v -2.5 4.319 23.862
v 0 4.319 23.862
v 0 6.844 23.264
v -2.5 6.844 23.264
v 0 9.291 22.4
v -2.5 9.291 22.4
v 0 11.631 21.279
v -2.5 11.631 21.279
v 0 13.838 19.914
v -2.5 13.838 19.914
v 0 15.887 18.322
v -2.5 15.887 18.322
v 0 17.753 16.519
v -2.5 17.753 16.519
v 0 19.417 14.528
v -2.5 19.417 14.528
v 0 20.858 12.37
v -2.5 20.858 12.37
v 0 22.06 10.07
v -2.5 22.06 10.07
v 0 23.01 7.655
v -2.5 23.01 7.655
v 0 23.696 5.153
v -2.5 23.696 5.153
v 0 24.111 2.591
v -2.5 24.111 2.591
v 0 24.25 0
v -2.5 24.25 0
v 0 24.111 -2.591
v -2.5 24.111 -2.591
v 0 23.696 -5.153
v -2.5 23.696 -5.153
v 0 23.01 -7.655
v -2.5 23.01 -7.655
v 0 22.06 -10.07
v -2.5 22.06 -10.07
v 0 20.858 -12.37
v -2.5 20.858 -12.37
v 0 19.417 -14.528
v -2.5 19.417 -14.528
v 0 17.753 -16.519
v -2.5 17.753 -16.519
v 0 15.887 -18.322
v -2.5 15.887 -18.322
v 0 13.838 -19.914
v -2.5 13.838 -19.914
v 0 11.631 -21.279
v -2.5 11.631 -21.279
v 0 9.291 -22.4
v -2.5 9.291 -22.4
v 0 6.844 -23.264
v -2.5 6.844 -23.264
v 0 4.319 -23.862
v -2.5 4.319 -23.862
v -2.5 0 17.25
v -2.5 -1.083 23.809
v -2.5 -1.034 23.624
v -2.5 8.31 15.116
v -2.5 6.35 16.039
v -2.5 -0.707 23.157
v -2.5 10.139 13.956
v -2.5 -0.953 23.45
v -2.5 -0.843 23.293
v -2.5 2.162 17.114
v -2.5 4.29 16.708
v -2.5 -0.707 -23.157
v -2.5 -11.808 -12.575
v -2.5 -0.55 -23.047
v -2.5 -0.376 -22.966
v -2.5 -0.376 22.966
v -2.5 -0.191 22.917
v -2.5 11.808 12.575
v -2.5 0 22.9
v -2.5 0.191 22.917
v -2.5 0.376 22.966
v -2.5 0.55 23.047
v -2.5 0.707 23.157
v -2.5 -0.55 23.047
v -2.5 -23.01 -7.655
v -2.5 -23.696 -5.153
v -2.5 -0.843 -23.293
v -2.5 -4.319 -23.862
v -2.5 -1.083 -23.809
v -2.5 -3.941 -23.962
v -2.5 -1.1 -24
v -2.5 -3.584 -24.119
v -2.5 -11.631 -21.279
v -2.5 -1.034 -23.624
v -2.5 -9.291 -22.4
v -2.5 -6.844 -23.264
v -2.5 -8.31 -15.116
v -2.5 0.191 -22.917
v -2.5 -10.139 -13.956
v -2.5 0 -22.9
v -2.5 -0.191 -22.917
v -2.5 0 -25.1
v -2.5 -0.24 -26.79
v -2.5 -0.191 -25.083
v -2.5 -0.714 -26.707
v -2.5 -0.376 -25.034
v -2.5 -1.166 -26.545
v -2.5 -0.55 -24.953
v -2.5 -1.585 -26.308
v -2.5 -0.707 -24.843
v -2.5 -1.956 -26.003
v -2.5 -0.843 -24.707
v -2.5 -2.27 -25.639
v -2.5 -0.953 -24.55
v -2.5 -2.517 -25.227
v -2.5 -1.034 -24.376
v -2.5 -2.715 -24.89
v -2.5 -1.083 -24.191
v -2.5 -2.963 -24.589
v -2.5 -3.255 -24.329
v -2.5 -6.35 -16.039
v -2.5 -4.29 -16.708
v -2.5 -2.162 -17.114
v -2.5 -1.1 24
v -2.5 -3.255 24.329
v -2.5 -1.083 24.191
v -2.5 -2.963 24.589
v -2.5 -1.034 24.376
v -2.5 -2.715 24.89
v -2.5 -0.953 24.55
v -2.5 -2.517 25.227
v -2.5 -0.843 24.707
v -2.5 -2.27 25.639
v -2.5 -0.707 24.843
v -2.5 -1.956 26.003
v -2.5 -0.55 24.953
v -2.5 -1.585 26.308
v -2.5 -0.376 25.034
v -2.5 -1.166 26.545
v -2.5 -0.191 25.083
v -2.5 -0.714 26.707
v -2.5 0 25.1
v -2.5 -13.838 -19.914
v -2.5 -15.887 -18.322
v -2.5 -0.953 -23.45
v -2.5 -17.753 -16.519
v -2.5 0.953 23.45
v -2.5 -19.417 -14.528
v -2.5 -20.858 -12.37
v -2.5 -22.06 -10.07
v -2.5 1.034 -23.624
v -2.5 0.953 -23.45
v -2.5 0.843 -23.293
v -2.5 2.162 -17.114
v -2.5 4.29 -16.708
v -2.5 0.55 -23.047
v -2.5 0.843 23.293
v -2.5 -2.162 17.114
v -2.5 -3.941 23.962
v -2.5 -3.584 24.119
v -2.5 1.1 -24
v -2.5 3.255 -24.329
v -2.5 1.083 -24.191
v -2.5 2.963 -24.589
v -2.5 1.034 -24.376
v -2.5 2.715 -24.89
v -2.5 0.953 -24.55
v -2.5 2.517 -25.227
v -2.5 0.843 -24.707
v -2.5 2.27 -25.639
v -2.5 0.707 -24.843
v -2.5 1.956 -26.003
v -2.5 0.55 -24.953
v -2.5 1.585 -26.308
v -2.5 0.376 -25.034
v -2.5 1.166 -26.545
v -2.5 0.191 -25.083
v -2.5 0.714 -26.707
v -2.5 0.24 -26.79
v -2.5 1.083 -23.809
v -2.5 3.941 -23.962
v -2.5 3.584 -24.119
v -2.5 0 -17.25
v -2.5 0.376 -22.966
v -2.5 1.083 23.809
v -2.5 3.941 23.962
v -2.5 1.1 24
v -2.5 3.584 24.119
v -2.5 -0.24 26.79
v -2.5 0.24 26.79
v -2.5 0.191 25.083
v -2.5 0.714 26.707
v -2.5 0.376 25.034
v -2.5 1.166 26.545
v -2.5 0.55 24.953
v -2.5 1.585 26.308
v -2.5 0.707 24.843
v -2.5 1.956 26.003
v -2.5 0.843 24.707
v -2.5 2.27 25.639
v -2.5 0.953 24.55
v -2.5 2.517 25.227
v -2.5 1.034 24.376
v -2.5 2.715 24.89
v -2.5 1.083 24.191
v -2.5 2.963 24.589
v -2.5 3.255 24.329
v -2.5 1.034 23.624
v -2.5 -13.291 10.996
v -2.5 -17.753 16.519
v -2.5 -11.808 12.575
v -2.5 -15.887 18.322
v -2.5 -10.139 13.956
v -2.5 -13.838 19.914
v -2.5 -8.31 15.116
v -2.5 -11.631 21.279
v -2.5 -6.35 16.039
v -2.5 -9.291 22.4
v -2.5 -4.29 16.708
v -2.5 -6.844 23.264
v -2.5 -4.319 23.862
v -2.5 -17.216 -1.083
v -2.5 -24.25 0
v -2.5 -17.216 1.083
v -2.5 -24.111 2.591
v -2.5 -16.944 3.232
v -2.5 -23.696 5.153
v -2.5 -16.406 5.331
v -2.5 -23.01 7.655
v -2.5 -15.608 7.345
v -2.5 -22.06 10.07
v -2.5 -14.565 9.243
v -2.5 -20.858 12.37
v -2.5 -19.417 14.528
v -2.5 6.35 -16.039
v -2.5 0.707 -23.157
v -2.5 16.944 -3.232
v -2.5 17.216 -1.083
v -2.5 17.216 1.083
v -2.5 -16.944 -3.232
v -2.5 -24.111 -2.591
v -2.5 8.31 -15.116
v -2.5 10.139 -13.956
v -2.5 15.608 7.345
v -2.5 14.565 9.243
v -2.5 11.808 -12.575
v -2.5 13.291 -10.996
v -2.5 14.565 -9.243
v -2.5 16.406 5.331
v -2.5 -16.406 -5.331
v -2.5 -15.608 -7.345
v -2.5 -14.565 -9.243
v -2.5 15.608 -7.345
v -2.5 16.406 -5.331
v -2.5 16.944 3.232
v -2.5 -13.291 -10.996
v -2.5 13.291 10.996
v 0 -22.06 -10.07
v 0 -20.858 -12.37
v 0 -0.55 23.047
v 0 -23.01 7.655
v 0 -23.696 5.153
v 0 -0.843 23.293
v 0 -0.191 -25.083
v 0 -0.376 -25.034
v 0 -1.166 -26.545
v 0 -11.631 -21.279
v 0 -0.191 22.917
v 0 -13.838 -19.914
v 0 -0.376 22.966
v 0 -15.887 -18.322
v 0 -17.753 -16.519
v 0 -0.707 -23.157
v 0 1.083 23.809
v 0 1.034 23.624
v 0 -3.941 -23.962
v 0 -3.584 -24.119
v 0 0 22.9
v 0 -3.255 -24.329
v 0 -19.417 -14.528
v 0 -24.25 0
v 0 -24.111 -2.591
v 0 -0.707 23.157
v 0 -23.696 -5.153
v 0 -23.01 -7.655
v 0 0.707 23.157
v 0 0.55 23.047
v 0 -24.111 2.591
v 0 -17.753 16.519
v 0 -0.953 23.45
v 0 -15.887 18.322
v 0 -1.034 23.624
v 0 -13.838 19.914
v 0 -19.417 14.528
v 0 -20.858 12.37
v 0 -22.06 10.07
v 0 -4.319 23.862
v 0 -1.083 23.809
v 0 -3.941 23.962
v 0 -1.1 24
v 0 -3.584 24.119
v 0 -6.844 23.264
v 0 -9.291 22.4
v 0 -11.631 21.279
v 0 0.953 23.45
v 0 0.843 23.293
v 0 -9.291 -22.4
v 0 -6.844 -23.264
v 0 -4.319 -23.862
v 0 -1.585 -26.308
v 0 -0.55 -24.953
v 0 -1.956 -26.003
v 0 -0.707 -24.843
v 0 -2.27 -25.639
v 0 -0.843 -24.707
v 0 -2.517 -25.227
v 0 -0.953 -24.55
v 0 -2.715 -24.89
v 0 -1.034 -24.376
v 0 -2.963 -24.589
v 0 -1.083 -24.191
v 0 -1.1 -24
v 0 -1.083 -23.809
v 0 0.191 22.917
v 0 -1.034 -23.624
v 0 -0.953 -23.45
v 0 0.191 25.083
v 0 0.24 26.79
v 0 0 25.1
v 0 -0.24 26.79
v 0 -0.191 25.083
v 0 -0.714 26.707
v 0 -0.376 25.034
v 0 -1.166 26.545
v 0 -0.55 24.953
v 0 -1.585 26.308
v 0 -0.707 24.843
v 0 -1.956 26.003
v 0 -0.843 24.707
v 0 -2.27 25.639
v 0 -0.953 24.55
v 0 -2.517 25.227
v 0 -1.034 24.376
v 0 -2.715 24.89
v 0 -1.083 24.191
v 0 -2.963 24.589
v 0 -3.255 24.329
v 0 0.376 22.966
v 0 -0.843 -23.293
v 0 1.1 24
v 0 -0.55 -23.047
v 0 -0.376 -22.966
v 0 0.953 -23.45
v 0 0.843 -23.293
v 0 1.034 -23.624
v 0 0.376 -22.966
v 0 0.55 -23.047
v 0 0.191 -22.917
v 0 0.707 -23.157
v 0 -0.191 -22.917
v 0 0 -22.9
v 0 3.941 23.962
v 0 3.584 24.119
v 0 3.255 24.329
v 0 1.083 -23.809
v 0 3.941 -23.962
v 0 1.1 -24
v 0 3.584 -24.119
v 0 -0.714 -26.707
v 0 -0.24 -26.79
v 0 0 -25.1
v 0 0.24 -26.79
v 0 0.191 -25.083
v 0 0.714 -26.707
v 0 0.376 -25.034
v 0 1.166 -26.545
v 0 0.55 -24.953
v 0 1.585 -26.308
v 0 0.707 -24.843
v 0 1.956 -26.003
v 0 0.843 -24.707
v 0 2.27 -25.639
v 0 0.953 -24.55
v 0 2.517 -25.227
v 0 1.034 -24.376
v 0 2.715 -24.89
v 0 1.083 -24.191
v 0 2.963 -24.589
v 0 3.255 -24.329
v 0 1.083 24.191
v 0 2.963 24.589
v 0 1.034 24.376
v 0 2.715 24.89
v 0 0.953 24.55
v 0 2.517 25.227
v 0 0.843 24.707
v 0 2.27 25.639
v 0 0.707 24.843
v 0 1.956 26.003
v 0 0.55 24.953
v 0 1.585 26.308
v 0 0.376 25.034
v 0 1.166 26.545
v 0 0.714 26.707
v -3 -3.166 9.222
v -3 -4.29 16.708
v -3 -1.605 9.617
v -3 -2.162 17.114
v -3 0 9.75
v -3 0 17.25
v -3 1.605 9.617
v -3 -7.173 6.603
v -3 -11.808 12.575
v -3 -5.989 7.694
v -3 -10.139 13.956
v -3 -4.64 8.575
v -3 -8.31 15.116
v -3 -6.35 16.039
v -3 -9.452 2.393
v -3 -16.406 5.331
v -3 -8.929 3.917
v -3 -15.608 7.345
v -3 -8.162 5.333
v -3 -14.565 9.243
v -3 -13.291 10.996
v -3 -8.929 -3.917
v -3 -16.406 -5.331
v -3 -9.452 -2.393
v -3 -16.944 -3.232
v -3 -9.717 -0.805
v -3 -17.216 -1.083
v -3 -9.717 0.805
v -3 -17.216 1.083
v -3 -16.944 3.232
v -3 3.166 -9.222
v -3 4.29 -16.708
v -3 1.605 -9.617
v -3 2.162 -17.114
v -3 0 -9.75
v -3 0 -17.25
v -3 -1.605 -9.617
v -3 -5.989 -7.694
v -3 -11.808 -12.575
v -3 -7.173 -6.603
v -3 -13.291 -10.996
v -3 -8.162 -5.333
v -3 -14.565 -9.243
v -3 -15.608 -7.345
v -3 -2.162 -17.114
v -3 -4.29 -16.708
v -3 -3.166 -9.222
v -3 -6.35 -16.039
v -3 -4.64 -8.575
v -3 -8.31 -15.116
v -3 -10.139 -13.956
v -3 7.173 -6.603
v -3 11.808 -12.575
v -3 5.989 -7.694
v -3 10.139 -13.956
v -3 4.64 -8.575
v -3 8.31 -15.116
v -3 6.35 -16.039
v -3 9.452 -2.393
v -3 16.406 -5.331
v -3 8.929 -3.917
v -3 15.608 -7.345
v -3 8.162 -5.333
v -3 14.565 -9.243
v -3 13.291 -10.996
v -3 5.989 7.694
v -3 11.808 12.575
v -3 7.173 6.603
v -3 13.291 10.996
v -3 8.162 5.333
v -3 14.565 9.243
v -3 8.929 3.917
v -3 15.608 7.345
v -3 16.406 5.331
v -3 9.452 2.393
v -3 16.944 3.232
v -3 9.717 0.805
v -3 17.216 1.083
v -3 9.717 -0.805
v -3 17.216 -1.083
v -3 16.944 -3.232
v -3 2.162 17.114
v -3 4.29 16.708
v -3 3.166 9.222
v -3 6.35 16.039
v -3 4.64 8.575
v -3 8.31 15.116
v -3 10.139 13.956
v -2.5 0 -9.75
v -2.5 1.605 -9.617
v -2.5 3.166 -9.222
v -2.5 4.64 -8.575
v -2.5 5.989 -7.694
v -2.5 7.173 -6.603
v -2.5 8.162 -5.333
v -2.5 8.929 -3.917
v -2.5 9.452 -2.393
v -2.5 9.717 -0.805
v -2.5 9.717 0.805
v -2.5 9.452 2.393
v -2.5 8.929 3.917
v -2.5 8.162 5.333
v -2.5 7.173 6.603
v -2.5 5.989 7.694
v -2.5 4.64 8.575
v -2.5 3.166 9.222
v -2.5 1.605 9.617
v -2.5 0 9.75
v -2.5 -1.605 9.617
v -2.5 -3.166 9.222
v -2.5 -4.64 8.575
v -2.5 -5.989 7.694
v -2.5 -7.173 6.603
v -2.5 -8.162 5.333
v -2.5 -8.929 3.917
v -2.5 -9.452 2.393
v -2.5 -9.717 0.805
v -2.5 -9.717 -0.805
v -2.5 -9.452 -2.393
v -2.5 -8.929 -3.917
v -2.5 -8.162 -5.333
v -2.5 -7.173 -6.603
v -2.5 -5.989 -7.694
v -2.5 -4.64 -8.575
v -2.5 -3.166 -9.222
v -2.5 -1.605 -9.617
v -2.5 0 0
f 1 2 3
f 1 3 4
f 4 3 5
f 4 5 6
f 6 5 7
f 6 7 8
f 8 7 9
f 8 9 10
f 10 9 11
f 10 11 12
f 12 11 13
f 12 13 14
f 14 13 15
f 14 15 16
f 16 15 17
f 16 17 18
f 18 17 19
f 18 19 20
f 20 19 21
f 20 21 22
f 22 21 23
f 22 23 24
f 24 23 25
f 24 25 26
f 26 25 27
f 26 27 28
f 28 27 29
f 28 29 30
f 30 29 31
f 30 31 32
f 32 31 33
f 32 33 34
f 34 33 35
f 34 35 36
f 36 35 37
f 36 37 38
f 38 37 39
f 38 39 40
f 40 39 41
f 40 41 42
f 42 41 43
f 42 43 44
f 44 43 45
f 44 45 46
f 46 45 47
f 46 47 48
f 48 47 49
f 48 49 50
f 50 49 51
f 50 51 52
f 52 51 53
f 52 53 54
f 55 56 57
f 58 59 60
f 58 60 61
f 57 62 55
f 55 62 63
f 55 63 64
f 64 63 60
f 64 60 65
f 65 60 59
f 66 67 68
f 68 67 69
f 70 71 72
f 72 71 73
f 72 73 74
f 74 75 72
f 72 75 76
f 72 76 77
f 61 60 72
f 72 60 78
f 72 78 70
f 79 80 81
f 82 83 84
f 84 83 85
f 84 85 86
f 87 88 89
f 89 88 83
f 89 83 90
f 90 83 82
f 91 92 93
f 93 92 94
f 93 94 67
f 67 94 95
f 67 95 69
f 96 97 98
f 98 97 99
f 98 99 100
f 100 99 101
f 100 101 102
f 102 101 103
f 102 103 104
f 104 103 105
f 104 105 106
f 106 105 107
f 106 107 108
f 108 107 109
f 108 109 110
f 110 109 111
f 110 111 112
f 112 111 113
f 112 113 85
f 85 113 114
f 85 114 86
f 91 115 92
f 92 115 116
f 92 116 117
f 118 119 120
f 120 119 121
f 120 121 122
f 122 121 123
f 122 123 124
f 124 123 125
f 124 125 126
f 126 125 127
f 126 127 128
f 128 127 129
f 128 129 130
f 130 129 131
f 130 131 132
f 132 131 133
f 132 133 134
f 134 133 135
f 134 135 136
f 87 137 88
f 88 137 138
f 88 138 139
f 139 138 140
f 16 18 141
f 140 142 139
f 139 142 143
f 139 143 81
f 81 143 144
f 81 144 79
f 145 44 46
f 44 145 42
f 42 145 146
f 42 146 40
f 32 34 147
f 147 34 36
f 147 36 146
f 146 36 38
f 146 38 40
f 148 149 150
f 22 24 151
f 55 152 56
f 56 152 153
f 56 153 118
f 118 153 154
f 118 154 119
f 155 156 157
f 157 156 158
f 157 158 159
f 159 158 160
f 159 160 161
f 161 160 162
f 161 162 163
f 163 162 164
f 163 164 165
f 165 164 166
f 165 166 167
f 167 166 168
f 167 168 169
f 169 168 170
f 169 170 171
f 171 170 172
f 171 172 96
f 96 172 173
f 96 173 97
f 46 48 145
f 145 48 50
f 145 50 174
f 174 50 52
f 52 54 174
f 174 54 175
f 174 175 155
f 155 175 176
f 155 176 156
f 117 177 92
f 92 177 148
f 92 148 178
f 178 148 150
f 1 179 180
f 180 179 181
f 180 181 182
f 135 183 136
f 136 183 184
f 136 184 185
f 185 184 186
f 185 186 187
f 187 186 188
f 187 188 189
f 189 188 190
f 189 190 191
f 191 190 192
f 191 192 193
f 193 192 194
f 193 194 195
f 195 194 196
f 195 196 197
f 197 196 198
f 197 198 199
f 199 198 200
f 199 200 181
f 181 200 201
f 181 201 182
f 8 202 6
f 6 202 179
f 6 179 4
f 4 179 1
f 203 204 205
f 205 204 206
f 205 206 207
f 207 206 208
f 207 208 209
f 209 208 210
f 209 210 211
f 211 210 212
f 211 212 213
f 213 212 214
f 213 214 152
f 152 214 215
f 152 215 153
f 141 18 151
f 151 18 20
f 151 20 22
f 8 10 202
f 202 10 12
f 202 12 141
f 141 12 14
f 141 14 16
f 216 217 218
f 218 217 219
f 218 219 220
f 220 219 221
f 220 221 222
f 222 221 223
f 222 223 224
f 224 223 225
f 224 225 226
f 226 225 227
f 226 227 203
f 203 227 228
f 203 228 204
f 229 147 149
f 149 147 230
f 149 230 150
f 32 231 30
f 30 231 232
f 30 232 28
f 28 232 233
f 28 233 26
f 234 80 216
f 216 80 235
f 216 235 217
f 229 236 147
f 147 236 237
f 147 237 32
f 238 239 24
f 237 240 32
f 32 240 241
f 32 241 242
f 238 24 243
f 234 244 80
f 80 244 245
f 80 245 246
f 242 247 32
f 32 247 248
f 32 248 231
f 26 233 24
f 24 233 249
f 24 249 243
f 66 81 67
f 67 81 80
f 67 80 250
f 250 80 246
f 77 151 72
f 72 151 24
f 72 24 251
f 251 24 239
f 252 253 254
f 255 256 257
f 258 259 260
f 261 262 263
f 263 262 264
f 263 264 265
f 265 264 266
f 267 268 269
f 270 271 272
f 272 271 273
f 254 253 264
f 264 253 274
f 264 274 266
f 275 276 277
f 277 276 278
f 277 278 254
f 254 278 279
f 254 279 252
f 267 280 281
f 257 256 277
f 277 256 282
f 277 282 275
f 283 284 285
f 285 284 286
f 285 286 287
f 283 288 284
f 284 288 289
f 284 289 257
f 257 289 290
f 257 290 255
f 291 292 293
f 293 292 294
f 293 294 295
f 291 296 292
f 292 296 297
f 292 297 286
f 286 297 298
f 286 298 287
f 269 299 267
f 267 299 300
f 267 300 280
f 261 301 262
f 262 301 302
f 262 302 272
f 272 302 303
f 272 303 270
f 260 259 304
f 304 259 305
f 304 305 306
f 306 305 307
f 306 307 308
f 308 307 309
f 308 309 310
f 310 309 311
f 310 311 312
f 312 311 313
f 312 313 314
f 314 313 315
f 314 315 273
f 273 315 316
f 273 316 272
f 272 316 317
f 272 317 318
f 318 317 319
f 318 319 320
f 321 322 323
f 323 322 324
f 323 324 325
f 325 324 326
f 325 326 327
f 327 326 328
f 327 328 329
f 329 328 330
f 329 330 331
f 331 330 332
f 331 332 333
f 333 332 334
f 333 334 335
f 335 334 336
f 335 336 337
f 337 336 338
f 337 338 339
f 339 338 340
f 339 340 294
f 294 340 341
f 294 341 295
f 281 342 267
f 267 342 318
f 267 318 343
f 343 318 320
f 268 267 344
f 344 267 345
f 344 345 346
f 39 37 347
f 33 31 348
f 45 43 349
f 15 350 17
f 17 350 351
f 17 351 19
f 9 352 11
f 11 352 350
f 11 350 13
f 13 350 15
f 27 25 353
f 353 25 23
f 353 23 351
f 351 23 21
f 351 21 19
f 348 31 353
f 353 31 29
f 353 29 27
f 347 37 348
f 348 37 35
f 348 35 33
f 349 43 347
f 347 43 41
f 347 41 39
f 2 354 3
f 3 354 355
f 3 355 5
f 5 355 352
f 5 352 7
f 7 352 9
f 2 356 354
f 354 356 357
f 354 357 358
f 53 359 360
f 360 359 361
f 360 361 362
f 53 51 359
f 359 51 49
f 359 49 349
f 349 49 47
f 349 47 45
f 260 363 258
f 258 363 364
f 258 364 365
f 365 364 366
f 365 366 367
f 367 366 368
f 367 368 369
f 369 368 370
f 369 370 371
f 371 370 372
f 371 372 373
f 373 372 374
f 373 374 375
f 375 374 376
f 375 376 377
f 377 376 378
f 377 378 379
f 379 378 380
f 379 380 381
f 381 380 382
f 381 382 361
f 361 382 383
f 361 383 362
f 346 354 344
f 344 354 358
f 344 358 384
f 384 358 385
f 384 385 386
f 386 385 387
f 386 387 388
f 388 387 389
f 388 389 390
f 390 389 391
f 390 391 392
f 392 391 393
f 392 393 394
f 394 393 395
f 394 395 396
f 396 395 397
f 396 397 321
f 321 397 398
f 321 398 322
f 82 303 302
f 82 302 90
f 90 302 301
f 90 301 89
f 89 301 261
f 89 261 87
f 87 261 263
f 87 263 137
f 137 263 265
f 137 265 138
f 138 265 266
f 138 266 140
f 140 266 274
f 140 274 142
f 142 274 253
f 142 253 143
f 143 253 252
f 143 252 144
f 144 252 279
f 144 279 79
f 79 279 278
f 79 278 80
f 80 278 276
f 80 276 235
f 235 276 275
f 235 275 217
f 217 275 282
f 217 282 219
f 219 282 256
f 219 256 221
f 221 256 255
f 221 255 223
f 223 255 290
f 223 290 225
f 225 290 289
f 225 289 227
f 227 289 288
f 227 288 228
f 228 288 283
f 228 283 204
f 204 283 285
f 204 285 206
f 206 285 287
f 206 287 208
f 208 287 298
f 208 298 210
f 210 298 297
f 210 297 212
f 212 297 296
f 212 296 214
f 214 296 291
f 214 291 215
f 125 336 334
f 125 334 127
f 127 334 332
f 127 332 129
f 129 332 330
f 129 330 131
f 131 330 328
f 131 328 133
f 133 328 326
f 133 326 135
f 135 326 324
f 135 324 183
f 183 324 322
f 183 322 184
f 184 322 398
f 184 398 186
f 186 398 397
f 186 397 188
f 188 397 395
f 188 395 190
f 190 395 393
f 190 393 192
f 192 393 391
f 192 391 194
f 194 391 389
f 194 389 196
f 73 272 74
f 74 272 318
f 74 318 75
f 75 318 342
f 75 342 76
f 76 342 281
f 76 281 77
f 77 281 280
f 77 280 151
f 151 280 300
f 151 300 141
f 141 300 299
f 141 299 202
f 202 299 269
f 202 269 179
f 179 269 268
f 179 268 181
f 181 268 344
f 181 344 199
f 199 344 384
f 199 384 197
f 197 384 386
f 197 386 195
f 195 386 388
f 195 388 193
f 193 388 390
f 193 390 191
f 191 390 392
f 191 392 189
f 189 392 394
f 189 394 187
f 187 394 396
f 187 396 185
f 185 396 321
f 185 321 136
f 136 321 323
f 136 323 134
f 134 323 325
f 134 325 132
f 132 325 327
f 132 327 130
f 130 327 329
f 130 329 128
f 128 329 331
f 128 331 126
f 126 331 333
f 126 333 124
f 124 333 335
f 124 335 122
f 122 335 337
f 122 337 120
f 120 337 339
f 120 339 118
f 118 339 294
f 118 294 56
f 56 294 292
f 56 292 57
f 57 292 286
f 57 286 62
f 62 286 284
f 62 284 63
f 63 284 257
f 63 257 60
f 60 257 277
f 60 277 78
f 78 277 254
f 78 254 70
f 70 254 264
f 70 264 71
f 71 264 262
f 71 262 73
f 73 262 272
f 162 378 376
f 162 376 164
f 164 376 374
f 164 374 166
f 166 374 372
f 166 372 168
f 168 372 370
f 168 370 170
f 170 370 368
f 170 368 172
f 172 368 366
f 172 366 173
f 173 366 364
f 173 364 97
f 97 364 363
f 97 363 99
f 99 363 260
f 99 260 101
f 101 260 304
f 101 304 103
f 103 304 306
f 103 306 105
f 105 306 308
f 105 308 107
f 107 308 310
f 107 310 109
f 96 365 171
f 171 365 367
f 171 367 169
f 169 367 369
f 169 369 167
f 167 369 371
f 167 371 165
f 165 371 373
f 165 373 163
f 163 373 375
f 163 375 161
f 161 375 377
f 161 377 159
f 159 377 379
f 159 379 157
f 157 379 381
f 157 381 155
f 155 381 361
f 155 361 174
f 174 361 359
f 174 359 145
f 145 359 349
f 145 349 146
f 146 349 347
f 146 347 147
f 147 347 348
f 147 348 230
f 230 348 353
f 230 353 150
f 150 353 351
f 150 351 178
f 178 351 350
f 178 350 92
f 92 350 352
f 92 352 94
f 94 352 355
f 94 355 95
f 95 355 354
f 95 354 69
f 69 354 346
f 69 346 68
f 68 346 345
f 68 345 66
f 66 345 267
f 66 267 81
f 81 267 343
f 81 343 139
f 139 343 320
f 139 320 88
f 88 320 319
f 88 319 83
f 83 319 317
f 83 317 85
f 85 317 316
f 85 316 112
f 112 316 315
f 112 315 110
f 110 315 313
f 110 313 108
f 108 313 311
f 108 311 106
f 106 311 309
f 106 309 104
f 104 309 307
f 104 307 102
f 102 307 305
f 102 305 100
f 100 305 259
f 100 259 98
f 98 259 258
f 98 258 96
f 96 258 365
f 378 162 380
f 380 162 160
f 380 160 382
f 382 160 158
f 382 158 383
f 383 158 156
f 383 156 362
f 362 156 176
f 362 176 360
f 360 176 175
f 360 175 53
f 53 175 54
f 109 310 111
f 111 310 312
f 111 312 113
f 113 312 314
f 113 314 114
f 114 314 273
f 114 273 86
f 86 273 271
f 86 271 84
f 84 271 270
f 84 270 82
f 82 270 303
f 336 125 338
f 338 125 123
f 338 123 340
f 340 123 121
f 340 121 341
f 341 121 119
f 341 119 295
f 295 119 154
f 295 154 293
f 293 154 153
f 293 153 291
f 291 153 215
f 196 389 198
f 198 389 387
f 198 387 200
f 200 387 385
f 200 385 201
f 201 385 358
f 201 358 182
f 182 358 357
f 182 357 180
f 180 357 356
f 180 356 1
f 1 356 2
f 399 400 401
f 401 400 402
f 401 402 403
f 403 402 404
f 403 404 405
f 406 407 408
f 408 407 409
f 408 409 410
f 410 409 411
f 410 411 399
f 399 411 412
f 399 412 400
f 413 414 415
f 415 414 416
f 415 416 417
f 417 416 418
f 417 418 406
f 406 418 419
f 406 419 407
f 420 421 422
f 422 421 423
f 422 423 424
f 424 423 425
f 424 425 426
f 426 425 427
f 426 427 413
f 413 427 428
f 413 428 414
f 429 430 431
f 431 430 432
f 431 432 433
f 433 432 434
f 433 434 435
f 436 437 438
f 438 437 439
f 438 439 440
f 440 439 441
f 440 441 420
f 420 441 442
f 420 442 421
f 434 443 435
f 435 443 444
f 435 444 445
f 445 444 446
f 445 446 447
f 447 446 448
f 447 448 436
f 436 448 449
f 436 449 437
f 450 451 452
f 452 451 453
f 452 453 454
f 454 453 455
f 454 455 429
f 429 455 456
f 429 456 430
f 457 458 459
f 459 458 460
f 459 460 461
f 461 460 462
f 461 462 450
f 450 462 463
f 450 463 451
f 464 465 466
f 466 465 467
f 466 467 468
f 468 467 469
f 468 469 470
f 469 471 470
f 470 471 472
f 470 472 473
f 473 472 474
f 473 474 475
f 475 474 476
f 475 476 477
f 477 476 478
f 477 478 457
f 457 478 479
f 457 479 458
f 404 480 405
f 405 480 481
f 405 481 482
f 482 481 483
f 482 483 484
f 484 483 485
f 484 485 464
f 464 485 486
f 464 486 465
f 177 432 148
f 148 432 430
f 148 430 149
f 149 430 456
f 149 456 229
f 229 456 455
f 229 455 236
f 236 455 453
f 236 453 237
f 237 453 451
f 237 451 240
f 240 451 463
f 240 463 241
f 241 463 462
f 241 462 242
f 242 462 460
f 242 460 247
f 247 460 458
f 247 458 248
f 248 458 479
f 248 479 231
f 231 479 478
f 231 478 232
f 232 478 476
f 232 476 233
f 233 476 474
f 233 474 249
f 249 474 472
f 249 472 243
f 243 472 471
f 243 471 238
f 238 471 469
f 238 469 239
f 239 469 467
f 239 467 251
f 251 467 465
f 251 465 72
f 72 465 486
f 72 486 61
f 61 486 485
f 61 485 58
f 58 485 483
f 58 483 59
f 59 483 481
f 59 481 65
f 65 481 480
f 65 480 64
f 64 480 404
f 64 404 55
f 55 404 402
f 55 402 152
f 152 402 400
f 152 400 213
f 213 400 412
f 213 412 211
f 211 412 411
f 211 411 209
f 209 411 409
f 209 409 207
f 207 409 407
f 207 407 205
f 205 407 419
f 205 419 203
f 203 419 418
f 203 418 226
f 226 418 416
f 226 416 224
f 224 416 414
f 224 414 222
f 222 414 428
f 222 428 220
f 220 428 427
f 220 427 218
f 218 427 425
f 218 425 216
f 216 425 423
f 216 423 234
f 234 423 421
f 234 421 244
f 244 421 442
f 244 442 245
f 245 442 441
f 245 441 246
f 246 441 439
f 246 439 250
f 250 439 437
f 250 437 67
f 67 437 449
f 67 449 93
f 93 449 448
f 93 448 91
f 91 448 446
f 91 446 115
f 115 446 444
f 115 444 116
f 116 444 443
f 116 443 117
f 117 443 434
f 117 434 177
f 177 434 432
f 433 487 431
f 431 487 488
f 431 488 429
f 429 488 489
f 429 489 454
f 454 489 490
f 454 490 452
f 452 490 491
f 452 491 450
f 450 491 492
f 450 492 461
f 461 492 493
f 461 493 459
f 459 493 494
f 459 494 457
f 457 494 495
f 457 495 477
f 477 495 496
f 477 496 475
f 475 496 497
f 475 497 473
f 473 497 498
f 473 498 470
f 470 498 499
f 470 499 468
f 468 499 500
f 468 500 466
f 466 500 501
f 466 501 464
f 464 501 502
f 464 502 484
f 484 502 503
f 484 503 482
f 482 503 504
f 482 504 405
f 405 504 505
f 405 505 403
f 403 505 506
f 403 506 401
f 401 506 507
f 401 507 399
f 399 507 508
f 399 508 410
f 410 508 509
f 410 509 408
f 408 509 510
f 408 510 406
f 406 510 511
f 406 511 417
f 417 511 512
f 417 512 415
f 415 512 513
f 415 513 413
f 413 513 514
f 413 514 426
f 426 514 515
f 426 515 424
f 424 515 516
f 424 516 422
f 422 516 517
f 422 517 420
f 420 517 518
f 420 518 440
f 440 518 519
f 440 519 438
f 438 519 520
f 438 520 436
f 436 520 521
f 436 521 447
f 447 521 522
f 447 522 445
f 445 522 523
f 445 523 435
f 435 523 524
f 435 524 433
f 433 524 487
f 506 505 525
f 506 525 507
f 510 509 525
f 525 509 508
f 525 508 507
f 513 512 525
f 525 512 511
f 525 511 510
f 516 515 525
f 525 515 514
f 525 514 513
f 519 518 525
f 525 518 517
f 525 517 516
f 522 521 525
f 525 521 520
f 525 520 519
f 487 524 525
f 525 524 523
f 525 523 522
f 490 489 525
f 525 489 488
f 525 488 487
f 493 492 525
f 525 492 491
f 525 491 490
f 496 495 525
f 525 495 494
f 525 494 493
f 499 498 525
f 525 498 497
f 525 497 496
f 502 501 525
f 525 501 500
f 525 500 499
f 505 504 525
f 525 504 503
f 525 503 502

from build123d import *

# Parameters (mm, degrees)
SKETCH2_R               = 2.8
SKETCH2_R_2             = 1.1
BOSS_EXTRUDE1_DEPTH     = 2.5
FILLET1_R               = 2.5
SKETCH4_R               = 17.25
SKETCH4_R_2             = 9.75
BOSS_EXTRUDE2_DEPTH     = 0.5
CUT_EXTRUDE1_DEPTH      = 37.267099556
CUT_EXTRUDE1_DEPTH_BACK = 37.267099556
SKETCH6_R               = 1.1


with BuildPart() as part:
    # Sketch1 → Revolve1 (revolve)
    with BuildSketch(Plane.XY, mode=Mode.PRIVATE) as revolve1_sk:
        Polygon((-2.5, 0), (0, 0), (0, 24.25), (-2.5, 24.25), (-2.5, 19), align=None)
    revolve(revolve1_sk.sketch.rotate(Axis((0, 0, 0), (-1, 0, 0)), 90), axis=Axis((0, 0, 0), (-1, 0, 0)))

    # Sketch2 → Boss-Extrude1 (add)
    # profile 1 of 2: a face of its own
    with BuildSketch(Plane(origin=(0, 0, 0), x_dir=(0, 0, -1), z_dir=(1, 0, 0))):
        with Locations((-24, 0)):
            Circle(SKETCH2_R)
        with Locations((-24, 0)):
            Circle(SKETCH2_R_2, mode=Mode.SUBTRACT)
    # profile 2 of 2: a face of its own
    with BuildSketch(Plane(origin=(0, 0, 0), x_dir=(0, 0, -1), z_dir=(1, 0, 0))):
        with Locations((24, 0)):
            Circle(SKETCH2_R)
        with Locations((24, 0)):
            Circle(SKETCH2_R_2, mode=Mode.SUBTRACT)
    extrude(amount=-BOSS_EXTRUDE1_DEPTH)

    # Fillet1
    fillet1_edges = [part.edges().sort_by_distance(p)[0] for p in [
        (-1.25, 2.798617784, 24.08796875),
        (-1.25, -2.798617784, 24.08796875),
        (-1.25, -2.798617784, -24.08796875),
        (-1.25, 2.798617784, -24.08796875),
    ]]
    fillet(fillet1_edges, radius=FILLET1_R)

    # Sketch4 → Boss-Extrude2 (add)
    with BuildSketch(Plane.ZY.offset(2.5)):
        Circle(SKETCH4_R)
        Circle(SKETCH4_R_2, mode=Mode.SUBTRACT)
    extrude(amount=BOSS_EXTRUDE2_DEPTH)

    # Sketch6 → Cut-Extrude1 (cut, two sides: drawn at the far end of the back side and taken through both)
    with BuildSketch(Plane(origin=(0, 0, 0), x_dir=(0, 0, -1), z_dir=(1, 0, 0)).offset(-CUT_EXTRUDE1_DEPTH_BACK)):
        with Locations((-24, 0)):
            Circle(SKETCH6_R)
        with Locations(Location((24, 0, 0), (0, 0, 180))):
            Circle(SKETCH6_R)
    extrude(amount=CUT_EXTRUDE1_DEPTH + CUT_EXTRUDE1_DEPTH_BACK, mode=Mode.SUBTRACT)


solid = part.part
